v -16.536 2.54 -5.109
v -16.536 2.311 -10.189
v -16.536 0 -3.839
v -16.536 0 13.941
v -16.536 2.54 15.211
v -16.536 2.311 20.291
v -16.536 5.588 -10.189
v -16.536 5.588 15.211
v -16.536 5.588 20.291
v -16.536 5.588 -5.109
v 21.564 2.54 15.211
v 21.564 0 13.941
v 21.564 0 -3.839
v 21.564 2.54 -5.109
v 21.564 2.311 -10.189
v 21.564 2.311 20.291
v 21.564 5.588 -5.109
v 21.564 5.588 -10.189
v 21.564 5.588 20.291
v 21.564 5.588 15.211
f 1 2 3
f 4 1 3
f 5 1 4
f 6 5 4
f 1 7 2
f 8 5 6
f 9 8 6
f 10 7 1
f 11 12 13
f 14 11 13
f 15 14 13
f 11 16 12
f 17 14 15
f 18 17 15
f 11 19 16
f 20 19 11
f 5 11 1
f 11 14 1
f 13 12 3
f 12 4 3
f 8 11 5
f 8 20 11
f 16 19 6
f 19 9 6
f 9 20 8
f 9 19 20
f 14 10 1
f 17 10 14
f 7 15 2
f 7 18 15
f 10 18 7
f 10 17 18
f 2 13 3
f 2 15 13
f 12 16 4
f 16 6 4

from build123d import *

# Parameters (mm, degrees)
SKETCH1_W           = 38.1
SKETCH1_H           = 20.32
BOSS_EXTRUDE1_DEPTH = 2.54
SKETCH2_W           = 38.1
SKETCH2_H           = 5.08
BOSS_EXTRUDE2_DEPTH = 5.588
CHAMFER1_SIZE       = 6.35
CHAMFER1_SIZE2      = 2.311210988


with BuildPart() as part:
    # Sketch1 → Boss-Extrude1 (new body)
    with BuildSketch(Plane(origin=(0, 0, 0), x_dir=(1, 0, 0), z_dir=(0, 1, 0))):
        with Locations((2.513541667, -5.051275362)):
            Rectangle(SKETCH1_W, SKETCH1_H)
    extrude(amount=BOSS_EXTRUDE1_DEPTH)

    # Sketch2 → Boss-Extrude2 (add)
    with BuildSketch(Plane(origin=(0, 0, 0), x_dir=(1, 0, 0), z_dir=(0, 1, 0))):
        with Locations((2.513541667, 7.648724638)):
            Rectangle(SKETCH2_W, SKETCH2_H)
        with Locations((2.513541667, -17.751275362)):
            Rectangle(SKETCH2_W, SKETCH2_H)
    extrude(amount=BOSS_EXTRUDE2_DEPTH)

    # Chamfer1
    chamfer1_edges = [part.edges().sort_by_distance(p)[0] for p in [
        (2.513541667, 0, -10.188724638),
        (2.513541667, 0, 20.291275362),
    ]]
    chamfer1_side = [part.faces().sort_by_distance(p)[0] for p in [
        (2.513541667, 0, 5.051275362),
    ]]
    chamfer(chamfer1_edges, length=CHAMFER1_SIZE, length2=CHAMFER1_SIZE2, reference=chamfer1_side[0])


solid = part.part
